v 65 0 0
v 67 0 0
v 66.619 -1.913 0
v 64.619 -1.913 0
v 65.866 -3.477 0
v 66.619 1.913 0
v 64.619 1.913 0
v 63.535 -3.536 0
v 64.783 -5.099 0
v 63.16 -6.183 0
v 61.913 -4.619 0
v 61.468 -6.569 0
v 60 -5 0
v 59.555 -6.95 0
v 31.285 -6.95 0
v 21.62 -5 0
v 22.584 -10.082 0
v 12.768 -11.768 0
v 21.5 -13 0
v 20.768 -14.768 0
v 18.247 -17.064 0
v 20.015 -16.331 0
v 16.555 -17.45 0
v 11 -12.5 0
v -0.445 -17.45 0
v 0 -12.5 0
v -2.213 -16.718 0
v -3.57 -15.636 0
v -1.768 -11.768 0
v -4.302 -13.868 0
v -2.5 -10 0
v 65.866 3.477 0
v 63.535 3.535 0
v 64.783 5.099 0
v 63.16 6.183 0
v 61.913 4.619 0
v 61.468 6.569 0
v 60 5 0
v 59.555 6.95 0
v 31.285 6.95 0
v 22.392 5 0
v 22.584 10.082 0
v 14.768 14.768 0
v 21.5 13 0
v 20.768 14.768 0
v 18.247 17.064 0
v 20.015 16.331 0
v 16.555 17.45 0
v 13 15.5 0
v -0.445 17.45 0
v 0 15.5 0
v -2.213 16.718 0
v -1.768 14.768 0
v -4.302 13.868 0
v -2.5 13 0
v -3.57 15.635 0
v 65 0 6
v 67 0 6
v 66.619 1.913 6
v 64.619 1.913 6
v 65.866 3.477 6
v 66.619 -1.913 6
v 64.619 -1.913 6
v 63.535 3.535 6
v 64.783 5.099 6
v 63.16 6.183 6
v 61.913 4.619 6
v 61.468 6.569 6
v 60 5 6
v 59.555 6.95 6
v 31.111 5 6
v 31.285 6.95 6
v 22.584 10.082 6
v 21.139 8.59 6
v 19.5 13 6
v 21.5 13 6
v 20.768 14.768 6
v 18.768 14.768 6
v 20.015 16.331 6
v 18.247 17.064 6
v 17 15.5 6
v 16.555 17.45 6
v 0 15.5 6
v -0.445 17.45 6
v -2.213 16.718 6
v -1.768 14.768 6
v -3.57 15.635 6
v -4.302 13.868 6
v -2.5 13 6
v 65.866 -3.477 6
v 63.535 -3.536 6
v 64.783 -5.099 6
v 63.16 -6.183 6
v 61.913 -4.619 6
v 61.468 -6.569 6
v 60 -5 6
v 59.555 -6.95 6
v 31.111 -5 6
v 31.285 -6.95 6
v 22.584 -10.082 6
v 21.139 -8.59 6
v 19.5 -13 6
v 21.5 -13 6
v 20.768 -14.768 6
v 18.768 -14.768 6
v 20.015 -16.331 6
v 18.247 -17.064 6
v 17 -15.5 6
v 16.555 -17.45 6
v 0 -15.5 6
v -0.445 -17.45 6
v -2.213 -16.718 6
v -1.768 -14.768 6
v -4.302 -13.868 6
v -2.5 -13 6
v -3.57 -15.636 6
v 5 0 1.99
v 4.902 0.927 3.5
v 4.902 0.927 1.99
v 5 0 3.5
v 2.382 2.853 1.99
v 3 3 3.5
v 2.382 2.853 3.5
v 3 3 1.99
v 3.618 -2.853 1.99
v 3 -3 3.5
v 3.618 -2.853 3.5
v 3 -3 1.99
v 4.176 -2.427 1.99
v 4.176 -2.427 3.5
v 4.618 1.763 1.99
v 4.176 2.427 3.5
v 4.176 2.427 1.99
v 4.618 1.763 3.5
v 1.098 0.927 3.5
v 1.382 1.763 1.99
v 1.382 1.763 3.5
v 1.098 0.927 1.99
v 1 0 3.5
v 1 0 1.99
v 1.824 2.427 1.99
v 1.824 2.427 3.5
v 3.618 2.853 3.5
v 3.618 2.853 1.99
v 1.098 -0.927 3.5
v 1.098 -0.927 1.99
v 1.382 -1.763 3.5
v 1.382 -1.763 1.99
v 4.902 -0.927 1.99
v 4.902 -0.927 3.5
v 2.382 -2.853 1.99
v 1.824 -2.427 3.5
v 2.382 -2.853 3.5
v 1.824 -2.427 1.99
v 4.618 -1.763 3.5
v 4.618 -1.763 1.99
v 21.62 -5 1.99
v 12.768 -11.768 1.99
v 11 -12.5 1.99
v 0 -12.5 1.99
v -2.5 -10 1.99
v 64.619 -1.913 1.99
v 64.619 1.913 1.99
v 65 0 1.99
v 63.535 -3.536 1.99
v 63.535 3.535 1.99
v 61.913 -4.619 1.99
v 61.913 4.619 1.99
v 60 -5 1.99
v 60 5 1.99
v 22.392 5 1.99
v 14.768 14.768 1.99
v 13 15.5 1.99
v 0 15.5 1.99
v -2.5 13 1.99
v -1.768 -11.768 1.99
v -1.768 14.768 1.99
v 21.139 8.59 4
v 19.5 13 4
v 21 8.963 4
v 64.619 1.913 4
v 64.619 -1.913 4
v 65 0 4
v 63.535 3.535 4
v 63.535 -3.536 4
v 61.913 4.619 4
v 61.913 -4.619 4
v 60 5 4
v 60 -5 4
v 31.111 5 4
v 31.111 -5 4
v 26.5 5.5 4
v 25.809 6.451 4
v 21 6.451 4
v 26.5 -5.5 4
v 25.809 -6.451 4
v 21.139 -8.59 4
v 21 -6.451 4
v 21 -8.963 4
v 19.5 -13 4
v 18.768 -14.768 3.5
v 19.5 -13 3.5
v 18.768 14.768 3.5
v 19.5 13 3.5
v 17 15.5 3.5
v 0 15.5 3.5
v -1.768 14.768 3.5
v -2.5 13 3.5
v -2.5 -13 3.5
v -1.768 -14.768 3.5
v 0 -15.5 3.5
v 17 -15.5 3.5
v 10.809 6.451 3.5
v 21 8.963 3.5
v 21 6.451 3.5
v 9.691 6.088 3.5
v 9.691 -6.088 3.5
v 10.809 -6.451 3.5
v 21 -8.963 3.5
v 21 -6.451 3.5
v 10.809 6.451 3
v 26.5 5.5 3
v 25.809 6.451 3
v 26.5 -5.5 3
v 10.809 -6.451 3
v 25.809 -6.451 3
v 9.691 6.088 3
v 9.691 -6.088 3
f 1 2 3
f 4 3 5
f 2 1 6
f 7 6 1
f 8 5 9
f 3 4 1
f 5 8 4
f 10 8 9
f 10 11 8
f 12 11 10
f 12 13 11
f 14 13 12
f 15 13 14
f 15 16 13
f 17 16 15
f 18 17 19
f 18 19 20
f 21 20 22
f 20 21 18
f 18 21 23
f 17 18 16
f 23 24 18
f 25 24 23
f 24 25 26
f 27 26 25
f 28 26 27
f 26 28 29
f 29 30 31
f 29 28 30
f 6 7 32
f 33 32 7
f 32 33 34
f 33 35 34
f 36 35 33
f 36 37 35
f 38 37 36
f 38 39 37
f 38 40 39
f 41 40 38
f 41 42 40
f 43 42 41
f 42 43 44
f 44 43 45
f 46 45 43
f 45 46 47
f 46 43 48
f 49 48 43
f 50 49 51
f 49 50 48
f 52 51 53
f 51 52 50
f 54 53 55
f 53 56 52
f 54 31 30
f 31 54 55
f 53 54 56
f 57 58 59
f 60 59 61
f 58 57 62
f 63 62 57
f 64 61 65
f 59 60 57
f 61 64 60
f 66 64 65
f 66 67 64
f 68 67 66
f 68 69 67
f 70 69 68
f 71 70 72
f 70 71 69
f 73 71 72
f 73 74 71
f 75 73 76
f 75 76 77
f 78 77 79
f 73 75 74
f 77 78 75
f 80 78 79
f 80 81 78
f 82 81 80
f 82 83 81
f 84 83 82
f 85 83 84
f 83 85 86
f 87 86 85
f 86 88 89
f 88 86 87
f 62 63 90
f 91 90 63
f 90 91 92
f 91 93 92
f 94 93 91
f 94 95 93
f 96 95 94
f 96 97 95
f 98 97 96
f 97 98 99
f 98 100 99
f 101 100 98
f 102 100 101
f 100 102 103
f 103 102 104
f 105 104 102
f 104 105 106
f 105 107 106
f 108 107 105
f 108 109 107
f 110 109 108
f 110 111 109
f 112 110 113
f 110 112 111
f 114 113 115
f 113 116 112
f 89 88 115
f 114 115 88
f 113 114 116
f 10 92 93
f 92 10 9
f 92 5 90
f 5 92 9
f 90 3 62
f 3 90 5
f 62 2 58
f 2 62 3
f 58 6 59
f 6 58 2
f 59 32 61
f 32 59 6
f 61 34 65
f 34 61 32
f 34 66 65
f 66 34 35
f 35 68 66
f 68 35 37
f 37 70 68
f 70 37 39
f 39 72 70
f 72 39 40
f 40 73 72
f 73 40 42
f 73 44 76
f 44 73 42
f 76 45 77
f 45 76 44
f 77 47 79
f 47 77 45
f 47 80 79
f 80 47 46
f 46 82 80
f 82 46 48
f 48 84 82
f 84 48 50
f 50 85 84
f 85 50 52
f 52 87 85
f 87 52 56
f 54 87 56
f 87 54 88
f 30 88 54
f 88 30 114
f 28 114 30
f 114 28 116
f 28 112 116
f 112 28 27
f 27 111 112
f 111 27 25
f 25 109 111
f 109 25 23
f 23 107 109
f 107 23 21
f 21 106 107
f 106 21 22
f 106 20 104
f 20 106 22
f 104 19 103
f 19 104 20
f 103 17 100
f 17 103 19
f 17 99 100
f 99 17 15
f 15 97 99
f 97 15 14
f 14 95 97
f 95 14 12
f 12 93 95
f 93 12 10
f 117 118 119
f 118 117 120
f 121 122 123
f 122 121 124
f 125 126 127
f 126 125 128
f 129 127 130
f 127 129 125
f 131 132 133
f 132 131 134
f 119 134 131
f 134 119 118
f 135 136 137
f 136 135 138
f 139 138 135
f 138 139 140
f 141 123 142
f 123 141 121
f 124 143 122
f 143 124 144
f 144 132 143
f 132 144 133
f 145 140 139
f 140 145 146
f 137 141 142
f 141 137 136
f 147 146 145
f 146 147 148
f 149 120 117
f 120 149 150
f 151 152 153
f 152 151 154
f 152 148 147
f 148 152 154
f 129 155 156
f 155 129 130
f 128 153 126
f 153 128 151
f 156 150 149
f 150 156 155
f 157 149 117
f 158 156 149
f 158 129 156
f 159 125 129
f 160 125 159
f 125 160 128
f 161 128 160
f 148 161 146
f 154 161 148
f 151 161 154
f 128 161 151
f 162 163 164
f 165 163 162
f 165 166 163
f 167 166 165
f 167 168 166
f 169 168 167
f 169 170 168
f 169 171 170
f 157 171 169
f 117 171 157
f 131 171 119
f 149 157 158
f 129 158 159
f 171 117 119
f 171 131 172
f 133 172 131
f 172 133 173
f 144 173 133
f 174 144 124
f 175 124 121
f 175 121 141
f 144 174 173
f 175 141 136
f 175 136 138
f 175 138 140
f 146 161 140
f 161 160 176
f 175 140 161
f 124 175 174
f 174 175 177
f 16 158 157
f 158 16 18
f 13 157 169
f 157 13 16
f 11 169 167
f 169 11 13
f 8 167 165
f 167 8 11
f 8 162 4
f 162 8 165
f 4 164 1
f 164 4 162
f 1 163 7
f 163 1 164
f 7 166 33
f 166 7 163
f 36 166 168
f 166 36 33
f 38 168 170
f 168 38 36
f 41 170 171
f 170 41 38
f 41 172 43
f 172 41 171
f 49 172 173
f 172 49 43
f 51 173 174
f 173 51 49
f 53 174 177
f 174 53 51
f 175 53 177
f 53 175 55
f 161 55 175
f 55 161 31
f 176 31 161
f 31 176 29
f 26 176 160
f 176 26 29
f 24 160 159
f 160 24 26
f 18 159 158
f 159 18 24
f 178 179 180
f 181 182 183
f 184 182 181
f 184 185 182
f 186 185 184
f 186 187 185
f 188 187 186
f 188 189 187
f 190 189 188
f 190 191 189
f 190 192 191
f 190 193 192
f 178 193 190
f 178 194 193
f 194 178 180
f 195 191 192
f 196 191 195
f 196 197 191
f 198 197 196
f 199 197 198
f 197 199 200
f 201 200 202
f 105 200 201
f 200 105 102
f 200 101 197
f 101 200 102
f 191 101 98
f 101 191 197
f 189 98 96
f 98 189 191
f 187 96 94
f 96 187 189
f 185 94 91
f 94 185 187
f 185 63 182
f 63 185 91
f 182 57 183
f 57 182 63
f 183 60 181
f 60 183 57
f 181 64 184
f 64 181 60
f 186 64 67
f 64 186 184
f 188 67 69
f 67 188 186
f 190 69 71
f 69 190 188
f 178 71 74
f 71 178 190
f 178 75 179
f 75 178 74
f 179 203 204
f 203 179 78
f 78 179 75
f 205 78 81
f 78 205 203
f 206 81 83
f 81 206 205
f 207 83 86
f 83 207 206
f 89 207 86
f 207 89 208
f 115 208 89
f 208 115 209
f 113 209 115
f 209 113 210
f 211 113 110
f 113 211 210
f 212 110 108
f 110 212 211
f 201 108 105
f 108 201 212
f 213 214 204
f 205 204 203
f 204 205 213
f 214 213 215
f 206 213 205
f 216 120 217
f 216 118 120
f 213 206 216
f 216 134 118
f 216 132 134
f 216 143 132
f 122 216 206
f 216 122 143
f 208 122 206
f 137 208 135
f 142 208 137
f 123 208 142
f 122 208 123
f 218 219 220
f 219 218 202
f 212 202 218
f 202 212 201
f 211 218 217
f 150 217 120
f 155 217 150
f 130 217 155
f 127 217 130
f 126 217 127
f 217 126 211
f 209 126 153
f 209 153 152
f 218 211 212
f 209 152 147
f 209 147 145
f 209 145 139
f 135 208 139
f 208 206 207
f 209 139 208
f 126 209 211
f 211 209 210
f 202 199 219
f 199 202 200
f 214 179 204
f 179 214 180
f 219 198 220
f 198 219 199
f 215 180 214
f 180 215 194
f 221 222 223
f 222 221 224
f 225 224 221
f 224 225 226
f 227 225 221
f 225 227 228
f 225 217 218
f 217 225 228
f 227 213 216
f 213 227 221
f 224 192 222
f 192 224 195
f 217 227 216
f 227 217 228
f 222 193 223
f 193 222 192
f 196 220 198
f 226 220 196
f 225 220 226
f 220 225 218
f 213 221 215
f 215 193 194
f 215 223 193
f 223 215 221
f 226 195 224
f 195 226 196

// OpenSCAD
yellowHeight = 3;
blackHeight = 5;
layerHeight = 1;

module yellowKey() {
	hull() {
		translate([15, 0]) square(10, center=true);
		translate([60, 0]) circle(d=10);
	}
	hull() {
		translate([0, 13]) circle(d=5);
		translate([0, -10]) circle(d=5);
		translate([13, 13]) circle(d=5);
		translate([11, -10]) circle(d=5);
		translate([20, 0]) circle(d=10);
	}
	translate([3, 0]) circle(d=5);
}

module blackKey() {
	hull() {
		translate([15, 0]) square(10, center=true);
		translate([60, 0]) circle(d=10);
	}
	polygon(points=[[45, 0], [20, 9], [20, -9]]);
	hull() {
		translate([0, 13]) circle(d=5);
		translate([0, -13]) circle(d=5);
		translate([17, 13]) circle(d=5);
		translate([17, -13]) circle(d=5);
		translate([19, 0]) circle(d=10);
	}
	translate([3, 0]) circle(d=5);
}

module case() {
	linear_extrude(height = 6) {
		minkowski() {
			blackKey();
			circle(r=2);
		}
	}
}

difference() {
	case();
	translate([3, 0, -1]) scale([1, 1.5, 1]) cylinder(d=4, h=20, $fn=20);
	translate([0, 0, -0.01]) linear_extrude(height = 2) {
		yellowKey();
	}
	translate([0, 0, 4]) linear_extrude(height = 2.1) {
		blackKey();
	}
	translate([0, 0, 3.5]) linear_extrude(height = 1) intersection() {
		blackKey();
		square(42, center=true);
	}
	translate([0, 0, 3]) linear_extrude(height = 2) {
		translate([18, 0, 0]) minkowski() {
			square([15, 11], center=true);
			circle(1);
		}
	}
}
